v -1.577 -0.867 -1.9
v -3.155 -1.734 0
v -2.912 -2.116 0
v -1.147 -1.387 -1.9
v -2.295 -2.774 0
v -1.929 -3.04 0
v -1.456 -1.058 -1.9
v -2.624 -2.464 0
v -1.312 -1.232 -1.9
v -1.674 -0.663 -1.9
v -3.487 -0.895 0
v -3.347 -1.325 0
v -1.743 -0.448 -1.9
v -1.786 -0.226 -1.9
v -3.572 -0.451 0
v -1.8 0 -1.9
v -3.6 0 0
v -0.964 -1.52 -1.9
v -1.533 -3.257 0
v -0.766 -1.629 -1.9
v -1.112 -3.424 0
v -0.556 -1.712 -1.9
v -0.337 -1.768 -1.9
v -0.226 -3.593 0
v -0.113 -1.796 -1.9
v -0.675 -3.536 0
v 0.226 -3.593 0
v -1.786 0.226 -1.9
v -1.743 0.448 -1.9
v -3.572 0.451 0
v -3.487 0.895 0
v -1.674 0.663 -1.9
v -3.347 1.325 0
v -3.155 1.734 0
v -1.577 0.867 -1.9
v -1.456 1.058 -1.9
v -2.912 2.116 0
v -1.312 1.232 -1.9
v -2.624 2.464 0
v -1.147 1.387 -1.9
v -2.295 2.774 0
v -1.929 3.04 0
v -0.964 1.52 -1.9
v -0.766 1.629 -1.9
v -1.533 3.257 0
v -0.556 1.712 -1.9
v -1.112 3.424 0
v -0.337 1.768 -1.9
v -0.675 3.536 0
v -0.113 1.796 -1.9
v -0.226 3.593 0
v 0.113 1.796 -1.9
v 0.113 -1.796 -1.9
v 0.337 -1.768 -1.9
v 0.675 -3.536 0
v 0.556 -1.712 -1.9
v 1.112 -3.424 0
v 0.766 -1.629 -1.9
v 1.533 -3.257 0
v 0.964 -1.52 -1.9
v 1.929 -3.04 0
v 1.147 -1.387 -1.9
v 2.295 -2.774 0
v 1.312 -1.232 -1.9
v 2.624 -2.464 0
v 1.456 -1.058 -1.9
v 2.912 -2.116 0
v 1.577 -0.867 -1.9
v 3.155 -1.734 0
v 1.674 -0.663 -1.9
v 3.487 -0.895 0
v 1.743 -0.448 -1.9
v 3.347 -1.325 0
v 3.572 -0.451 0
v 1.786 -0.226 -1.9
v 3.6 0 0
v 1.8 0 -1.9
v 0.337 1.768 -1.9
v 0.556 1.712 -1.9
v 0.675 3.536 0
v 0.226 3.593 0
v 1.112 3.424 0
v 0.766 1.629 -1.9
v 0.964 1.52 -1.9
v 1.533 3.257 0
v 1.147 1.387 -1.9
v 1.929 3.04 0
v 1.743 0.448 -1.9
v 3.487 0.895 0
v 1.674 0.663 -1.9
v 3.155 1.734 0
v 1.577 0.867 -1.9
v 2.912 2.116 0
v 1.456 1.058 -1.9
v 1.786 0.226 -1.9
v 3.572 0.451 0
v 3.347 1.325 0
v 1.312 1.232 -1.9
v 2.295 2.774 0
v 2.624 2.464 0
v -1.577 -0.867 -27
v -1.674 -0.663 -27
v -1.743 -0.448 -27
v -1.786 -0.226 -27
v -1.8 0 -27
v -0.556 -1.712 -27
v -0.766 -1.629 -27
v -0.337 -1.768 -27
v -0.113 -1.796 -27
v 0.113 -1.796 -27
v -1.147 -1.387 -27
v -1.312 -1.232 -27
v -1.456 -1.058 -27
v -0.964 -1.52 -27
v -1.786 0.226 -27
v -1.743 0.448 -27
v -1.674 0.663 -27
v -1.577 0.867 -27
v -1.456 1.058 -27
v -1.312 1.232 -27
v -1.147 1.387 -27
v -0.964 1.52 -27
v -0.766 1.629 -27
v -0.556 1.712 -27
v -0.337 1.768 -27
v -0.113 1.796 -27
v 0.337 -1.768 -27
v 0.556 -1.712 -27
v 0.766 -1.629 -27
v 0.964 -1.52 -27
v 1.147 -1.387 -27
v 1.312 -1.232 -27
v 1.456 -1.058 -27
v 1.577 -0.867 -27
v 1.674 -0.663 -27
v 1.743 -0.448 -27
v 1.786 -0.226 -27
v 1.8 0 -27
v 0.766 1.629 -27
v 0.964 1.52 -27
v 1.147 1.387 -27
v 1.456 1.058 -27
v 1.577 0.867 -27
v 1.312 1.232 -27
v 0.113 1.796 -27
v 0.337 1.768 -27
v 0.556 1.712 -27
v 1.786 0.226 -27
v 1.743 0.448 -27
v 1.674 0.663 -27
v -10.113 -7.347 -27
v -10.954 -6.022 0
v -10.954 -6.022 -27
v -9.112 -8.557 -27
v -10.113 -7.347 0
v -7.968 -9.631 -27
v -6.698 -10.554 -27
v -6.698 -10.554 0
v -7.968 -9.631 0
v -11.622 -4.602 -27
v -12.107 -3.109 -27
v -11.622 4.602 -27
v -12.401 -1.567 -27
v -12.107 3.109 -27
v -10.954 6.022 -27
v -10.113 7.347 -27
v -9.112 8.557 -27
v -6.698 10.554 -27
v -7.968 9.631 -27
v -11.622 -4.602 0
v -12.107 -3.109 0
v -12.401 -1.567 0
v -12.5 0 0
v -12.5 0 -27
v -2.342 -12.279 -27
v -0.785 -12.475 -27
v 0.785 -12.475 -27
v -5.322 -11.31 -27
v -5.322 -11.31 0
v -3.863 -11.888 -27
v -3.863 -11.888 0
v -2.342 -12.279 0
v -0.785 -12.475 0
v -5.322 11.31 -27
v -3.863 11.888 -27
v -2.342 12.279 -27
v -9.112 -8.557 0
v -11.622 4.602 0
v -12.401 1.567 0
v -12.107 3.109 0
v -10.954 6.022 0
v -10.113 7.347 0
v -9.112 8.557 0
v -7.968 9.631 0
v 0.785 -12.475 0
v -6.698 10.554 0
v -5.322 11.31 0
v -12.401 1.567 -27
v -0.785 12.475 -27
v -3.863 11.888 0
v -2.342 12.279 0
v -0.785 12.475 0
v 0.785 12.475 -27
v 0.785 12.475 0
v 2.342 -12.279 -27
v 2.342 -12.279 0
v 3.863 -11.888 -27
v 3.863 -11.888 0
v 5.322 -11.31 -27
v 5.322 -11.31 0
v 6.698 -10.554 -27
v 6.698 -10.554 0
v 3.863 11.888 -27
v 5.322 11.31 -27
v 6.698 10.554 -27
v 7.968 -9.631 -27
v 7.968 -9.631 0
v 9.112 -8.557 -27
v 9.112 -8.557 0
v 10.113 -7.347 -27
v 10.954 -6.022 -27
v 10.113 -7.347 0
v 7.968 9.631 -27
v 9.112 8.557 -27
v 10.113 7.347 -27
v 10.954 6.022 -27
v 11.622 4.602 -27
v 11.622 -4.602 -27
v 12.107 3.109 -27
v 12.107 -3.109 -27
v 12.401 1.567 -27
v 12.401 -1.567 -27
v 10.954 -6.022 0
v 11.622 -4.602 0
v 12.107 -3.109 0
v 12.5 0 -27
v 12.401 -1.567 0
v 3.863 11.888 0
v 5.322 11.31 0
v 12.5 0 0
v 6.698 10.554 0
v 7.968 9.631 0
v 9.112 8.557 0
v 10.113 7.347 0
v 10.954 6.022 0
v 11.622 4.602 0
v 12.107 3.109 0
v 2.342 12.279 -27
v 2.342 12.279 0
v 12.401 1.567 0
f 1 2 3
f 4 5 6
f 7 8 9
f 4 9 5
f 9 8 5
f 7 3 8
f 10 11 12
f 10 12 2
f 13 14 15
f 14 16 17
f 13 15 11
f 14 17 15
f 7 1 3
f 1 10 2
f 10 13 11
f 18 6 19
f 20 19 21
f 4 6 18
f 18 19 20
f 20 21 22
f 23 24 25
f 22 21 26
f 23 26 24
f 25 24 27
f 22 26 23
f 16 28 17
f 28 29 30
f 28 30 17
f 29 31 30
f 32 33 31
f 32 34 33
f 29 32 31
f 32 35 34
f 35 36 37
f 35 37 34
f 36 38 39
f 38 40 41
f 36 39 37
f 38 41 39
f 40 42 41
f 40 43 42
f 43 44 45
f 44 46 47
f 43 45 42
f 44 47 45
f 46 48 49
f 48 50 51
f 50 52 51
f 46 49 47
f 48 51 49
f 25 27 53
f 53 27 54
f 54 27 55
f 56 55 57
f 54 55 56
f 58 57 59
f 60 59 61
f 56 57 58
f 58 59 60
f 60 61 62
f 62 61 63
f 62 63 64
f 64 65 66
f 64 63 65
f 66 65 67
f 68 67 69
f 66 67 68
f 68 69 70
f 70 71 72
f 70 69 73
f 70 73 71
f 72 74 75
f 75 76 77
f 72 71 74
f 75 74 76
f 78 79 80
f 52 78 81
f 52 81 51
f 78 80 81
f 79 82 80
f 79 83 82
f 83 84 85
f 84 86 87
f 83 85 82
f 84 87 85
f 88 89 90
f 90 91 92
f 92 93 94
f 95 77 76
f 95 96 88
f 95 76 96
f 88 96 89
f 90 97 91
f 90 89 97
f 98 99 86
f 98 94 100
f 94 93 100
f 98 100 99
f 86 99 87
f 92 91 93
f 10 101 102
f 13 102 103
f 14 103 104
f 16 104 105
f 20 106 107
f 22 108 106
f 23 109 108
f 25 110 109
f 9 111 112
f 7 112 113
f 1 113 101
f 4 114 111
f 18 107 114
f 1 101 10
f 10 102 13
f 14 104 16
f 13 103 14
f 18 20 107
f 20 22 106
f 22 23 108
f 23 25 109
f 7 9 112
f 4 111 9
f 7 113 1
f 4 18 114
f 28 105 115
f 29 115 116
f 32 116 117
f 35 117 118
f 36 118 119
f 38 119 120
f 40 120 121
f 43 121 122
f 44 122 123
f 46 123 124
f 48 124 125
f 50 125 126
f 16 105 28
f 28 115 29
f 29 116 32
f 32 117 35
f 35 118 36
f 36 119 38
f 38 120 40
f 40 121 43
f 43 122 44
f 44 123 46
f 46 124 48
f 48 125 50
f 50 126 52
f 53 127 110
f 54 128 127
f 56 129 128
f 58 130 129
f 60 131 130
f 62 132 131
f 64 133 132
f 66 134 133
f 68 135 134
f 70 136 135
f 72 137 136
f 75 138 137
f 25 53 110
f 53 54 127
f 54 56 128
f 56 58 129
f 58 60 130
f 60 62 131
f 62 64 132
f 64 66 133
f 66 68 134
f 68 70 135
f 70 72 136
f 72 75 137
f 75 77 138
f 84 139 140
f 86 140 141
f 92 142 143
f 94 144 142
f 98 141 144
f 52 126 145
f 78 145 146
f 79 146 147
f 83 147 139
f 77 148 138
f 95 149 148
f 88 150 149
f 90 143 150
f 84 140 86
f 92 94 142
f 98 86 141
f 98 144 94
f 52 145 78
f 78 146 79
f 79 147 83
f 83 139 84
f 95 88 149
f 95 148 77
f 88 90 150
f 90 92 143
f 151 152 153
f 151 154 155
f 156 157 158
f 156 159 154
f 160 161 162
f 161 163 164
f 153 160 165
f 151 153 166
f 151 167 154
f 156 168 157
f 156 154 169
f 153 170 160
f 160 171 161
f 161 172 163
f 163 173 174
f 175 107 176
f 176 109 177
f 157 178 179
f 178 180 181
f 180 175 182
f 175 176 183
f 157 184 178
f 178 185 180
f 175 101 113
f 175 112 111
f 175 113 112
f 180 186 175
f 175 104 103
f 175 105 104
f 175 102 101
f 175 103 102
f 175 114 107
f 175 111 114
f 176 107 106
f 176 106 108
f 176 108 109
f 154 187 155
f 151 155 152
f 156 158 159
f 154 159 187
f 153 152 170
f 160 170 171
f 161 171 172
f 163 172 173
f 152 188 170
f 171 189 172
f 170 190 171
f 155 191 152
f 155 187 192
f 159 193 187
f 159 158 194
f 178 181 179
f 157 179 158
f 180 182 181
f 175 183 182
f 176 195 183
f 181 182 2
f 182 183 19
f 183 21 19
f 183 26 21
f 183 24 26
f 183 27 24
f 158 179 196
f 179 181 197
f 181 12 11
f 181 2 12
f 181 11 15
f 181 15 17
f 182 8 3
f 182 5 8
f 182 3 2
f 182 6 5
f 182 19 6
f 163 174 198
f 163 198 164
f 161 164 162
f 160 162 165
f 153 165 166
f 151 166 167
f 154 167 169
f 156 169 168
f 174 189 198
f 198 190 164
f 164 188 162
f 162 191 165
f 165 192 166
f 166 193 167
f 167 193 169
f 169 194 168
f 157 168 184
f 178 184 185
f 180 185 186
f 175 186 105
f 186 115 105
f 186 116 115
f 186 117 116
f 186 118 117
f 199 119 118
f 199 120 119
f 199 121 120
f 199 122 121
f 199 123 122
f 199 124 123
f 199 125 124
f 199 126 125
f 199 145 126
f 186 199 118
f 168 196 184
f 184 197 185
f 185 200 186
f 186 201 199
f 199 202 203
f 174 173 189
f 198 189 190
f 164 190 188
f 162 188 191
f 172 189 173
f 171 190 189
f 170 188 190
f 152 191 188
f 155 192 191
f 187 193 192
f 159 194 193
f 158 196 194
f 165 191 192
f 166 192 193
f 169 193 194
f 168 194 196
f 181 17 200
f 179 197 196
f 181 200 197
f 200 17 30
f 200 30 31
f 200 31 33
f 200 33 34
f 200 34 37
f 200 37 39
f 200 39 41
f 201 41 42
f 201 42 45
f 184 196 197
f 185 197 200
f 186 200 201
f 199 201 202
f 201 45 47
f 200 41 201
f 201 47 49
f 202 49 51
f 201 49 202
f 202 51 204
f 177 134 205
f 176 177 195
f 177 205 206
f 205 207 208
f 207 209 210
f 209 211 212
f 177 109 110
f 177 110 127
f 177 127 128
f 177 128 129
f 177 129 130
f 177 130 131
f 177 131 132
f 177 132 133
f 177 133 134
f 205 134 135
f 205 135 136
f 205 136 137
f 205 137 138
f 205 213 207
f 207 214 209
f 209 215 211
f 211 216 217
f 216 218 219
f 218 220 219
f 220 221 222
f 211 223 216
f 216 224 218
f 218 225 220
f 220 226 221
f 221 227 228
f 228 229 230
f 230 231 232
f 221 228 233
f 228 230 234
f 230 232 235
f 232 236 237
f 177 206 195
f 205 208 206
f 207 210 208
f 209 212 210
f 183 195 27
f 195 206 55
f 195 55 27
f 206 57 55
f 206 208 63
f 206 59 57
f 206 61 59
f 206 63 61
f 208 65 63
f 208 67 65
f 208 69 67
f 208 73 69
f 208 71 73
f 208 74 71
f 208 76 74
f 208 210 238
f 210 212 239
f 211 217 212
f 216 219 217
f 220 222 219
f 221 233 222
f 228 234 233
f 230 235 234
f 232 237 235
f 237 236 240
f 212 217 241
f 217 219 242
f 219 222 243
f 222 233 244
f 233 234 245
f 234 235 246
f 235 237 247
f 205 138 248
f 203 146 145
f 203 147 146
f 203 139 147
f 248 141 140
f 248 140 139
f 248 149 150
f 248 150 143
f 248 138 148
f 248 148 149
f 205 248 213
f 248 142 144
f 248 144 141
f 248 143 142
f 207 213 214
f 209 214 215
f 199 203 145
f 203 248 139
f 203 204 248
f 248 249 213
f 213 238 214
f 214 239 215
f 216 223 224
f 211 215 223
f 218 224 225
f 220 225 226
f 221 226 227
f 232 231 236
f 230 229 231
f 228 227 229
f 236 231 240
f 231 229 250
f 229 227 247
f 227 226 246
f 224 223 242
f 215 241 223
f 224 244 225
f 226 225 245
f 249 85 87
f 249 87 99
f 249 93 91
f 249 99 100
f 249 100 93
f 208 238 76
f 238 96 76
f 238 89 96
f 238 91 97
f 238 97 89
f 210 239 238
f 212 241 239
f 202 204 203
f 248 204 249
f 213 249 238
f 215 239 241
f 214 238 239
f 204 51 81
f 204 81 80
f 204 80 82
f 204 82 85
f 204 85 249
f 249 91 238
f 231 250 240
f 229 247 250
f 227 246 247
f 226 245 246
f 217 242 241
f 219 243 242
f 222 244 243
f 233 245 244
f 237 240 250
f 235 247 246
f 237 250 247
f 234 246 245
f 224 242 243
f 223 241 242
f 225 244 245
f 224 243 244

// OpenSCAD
$fn = 50;


difference() {
	union() {
		translate(v = [0, 0, -27.0000000000]) {
			cylinder(h = 27, r = 12.5000000000);
		}
	}
	union() {
		translate(v = [0, 0, 0]) {
			rotate(a = [0, 0, 0]) {
				difference() {
					union() {
						translate(v = [0, 0, -30.0000000000]) {
							cylinder(h = 30, r = 1.5000000000);
						}
						translate(v = [0, 0, -1.9000000000]) {
							cylinder(h = 1.9000000000, r1 = 1.8000000000, r2 = 3.6000000000);
						}
						translate(v = [0, 0, -30.0000000000]) {
							cylinder(h = 30, r = 1.8000000000);
						}
						translate(v = [0, 0, -30.0000000000]) {
							cylinder(h = 30, r = 1.5000000000);
						}
					}
					union();
				}
			}
		}
	}
}
